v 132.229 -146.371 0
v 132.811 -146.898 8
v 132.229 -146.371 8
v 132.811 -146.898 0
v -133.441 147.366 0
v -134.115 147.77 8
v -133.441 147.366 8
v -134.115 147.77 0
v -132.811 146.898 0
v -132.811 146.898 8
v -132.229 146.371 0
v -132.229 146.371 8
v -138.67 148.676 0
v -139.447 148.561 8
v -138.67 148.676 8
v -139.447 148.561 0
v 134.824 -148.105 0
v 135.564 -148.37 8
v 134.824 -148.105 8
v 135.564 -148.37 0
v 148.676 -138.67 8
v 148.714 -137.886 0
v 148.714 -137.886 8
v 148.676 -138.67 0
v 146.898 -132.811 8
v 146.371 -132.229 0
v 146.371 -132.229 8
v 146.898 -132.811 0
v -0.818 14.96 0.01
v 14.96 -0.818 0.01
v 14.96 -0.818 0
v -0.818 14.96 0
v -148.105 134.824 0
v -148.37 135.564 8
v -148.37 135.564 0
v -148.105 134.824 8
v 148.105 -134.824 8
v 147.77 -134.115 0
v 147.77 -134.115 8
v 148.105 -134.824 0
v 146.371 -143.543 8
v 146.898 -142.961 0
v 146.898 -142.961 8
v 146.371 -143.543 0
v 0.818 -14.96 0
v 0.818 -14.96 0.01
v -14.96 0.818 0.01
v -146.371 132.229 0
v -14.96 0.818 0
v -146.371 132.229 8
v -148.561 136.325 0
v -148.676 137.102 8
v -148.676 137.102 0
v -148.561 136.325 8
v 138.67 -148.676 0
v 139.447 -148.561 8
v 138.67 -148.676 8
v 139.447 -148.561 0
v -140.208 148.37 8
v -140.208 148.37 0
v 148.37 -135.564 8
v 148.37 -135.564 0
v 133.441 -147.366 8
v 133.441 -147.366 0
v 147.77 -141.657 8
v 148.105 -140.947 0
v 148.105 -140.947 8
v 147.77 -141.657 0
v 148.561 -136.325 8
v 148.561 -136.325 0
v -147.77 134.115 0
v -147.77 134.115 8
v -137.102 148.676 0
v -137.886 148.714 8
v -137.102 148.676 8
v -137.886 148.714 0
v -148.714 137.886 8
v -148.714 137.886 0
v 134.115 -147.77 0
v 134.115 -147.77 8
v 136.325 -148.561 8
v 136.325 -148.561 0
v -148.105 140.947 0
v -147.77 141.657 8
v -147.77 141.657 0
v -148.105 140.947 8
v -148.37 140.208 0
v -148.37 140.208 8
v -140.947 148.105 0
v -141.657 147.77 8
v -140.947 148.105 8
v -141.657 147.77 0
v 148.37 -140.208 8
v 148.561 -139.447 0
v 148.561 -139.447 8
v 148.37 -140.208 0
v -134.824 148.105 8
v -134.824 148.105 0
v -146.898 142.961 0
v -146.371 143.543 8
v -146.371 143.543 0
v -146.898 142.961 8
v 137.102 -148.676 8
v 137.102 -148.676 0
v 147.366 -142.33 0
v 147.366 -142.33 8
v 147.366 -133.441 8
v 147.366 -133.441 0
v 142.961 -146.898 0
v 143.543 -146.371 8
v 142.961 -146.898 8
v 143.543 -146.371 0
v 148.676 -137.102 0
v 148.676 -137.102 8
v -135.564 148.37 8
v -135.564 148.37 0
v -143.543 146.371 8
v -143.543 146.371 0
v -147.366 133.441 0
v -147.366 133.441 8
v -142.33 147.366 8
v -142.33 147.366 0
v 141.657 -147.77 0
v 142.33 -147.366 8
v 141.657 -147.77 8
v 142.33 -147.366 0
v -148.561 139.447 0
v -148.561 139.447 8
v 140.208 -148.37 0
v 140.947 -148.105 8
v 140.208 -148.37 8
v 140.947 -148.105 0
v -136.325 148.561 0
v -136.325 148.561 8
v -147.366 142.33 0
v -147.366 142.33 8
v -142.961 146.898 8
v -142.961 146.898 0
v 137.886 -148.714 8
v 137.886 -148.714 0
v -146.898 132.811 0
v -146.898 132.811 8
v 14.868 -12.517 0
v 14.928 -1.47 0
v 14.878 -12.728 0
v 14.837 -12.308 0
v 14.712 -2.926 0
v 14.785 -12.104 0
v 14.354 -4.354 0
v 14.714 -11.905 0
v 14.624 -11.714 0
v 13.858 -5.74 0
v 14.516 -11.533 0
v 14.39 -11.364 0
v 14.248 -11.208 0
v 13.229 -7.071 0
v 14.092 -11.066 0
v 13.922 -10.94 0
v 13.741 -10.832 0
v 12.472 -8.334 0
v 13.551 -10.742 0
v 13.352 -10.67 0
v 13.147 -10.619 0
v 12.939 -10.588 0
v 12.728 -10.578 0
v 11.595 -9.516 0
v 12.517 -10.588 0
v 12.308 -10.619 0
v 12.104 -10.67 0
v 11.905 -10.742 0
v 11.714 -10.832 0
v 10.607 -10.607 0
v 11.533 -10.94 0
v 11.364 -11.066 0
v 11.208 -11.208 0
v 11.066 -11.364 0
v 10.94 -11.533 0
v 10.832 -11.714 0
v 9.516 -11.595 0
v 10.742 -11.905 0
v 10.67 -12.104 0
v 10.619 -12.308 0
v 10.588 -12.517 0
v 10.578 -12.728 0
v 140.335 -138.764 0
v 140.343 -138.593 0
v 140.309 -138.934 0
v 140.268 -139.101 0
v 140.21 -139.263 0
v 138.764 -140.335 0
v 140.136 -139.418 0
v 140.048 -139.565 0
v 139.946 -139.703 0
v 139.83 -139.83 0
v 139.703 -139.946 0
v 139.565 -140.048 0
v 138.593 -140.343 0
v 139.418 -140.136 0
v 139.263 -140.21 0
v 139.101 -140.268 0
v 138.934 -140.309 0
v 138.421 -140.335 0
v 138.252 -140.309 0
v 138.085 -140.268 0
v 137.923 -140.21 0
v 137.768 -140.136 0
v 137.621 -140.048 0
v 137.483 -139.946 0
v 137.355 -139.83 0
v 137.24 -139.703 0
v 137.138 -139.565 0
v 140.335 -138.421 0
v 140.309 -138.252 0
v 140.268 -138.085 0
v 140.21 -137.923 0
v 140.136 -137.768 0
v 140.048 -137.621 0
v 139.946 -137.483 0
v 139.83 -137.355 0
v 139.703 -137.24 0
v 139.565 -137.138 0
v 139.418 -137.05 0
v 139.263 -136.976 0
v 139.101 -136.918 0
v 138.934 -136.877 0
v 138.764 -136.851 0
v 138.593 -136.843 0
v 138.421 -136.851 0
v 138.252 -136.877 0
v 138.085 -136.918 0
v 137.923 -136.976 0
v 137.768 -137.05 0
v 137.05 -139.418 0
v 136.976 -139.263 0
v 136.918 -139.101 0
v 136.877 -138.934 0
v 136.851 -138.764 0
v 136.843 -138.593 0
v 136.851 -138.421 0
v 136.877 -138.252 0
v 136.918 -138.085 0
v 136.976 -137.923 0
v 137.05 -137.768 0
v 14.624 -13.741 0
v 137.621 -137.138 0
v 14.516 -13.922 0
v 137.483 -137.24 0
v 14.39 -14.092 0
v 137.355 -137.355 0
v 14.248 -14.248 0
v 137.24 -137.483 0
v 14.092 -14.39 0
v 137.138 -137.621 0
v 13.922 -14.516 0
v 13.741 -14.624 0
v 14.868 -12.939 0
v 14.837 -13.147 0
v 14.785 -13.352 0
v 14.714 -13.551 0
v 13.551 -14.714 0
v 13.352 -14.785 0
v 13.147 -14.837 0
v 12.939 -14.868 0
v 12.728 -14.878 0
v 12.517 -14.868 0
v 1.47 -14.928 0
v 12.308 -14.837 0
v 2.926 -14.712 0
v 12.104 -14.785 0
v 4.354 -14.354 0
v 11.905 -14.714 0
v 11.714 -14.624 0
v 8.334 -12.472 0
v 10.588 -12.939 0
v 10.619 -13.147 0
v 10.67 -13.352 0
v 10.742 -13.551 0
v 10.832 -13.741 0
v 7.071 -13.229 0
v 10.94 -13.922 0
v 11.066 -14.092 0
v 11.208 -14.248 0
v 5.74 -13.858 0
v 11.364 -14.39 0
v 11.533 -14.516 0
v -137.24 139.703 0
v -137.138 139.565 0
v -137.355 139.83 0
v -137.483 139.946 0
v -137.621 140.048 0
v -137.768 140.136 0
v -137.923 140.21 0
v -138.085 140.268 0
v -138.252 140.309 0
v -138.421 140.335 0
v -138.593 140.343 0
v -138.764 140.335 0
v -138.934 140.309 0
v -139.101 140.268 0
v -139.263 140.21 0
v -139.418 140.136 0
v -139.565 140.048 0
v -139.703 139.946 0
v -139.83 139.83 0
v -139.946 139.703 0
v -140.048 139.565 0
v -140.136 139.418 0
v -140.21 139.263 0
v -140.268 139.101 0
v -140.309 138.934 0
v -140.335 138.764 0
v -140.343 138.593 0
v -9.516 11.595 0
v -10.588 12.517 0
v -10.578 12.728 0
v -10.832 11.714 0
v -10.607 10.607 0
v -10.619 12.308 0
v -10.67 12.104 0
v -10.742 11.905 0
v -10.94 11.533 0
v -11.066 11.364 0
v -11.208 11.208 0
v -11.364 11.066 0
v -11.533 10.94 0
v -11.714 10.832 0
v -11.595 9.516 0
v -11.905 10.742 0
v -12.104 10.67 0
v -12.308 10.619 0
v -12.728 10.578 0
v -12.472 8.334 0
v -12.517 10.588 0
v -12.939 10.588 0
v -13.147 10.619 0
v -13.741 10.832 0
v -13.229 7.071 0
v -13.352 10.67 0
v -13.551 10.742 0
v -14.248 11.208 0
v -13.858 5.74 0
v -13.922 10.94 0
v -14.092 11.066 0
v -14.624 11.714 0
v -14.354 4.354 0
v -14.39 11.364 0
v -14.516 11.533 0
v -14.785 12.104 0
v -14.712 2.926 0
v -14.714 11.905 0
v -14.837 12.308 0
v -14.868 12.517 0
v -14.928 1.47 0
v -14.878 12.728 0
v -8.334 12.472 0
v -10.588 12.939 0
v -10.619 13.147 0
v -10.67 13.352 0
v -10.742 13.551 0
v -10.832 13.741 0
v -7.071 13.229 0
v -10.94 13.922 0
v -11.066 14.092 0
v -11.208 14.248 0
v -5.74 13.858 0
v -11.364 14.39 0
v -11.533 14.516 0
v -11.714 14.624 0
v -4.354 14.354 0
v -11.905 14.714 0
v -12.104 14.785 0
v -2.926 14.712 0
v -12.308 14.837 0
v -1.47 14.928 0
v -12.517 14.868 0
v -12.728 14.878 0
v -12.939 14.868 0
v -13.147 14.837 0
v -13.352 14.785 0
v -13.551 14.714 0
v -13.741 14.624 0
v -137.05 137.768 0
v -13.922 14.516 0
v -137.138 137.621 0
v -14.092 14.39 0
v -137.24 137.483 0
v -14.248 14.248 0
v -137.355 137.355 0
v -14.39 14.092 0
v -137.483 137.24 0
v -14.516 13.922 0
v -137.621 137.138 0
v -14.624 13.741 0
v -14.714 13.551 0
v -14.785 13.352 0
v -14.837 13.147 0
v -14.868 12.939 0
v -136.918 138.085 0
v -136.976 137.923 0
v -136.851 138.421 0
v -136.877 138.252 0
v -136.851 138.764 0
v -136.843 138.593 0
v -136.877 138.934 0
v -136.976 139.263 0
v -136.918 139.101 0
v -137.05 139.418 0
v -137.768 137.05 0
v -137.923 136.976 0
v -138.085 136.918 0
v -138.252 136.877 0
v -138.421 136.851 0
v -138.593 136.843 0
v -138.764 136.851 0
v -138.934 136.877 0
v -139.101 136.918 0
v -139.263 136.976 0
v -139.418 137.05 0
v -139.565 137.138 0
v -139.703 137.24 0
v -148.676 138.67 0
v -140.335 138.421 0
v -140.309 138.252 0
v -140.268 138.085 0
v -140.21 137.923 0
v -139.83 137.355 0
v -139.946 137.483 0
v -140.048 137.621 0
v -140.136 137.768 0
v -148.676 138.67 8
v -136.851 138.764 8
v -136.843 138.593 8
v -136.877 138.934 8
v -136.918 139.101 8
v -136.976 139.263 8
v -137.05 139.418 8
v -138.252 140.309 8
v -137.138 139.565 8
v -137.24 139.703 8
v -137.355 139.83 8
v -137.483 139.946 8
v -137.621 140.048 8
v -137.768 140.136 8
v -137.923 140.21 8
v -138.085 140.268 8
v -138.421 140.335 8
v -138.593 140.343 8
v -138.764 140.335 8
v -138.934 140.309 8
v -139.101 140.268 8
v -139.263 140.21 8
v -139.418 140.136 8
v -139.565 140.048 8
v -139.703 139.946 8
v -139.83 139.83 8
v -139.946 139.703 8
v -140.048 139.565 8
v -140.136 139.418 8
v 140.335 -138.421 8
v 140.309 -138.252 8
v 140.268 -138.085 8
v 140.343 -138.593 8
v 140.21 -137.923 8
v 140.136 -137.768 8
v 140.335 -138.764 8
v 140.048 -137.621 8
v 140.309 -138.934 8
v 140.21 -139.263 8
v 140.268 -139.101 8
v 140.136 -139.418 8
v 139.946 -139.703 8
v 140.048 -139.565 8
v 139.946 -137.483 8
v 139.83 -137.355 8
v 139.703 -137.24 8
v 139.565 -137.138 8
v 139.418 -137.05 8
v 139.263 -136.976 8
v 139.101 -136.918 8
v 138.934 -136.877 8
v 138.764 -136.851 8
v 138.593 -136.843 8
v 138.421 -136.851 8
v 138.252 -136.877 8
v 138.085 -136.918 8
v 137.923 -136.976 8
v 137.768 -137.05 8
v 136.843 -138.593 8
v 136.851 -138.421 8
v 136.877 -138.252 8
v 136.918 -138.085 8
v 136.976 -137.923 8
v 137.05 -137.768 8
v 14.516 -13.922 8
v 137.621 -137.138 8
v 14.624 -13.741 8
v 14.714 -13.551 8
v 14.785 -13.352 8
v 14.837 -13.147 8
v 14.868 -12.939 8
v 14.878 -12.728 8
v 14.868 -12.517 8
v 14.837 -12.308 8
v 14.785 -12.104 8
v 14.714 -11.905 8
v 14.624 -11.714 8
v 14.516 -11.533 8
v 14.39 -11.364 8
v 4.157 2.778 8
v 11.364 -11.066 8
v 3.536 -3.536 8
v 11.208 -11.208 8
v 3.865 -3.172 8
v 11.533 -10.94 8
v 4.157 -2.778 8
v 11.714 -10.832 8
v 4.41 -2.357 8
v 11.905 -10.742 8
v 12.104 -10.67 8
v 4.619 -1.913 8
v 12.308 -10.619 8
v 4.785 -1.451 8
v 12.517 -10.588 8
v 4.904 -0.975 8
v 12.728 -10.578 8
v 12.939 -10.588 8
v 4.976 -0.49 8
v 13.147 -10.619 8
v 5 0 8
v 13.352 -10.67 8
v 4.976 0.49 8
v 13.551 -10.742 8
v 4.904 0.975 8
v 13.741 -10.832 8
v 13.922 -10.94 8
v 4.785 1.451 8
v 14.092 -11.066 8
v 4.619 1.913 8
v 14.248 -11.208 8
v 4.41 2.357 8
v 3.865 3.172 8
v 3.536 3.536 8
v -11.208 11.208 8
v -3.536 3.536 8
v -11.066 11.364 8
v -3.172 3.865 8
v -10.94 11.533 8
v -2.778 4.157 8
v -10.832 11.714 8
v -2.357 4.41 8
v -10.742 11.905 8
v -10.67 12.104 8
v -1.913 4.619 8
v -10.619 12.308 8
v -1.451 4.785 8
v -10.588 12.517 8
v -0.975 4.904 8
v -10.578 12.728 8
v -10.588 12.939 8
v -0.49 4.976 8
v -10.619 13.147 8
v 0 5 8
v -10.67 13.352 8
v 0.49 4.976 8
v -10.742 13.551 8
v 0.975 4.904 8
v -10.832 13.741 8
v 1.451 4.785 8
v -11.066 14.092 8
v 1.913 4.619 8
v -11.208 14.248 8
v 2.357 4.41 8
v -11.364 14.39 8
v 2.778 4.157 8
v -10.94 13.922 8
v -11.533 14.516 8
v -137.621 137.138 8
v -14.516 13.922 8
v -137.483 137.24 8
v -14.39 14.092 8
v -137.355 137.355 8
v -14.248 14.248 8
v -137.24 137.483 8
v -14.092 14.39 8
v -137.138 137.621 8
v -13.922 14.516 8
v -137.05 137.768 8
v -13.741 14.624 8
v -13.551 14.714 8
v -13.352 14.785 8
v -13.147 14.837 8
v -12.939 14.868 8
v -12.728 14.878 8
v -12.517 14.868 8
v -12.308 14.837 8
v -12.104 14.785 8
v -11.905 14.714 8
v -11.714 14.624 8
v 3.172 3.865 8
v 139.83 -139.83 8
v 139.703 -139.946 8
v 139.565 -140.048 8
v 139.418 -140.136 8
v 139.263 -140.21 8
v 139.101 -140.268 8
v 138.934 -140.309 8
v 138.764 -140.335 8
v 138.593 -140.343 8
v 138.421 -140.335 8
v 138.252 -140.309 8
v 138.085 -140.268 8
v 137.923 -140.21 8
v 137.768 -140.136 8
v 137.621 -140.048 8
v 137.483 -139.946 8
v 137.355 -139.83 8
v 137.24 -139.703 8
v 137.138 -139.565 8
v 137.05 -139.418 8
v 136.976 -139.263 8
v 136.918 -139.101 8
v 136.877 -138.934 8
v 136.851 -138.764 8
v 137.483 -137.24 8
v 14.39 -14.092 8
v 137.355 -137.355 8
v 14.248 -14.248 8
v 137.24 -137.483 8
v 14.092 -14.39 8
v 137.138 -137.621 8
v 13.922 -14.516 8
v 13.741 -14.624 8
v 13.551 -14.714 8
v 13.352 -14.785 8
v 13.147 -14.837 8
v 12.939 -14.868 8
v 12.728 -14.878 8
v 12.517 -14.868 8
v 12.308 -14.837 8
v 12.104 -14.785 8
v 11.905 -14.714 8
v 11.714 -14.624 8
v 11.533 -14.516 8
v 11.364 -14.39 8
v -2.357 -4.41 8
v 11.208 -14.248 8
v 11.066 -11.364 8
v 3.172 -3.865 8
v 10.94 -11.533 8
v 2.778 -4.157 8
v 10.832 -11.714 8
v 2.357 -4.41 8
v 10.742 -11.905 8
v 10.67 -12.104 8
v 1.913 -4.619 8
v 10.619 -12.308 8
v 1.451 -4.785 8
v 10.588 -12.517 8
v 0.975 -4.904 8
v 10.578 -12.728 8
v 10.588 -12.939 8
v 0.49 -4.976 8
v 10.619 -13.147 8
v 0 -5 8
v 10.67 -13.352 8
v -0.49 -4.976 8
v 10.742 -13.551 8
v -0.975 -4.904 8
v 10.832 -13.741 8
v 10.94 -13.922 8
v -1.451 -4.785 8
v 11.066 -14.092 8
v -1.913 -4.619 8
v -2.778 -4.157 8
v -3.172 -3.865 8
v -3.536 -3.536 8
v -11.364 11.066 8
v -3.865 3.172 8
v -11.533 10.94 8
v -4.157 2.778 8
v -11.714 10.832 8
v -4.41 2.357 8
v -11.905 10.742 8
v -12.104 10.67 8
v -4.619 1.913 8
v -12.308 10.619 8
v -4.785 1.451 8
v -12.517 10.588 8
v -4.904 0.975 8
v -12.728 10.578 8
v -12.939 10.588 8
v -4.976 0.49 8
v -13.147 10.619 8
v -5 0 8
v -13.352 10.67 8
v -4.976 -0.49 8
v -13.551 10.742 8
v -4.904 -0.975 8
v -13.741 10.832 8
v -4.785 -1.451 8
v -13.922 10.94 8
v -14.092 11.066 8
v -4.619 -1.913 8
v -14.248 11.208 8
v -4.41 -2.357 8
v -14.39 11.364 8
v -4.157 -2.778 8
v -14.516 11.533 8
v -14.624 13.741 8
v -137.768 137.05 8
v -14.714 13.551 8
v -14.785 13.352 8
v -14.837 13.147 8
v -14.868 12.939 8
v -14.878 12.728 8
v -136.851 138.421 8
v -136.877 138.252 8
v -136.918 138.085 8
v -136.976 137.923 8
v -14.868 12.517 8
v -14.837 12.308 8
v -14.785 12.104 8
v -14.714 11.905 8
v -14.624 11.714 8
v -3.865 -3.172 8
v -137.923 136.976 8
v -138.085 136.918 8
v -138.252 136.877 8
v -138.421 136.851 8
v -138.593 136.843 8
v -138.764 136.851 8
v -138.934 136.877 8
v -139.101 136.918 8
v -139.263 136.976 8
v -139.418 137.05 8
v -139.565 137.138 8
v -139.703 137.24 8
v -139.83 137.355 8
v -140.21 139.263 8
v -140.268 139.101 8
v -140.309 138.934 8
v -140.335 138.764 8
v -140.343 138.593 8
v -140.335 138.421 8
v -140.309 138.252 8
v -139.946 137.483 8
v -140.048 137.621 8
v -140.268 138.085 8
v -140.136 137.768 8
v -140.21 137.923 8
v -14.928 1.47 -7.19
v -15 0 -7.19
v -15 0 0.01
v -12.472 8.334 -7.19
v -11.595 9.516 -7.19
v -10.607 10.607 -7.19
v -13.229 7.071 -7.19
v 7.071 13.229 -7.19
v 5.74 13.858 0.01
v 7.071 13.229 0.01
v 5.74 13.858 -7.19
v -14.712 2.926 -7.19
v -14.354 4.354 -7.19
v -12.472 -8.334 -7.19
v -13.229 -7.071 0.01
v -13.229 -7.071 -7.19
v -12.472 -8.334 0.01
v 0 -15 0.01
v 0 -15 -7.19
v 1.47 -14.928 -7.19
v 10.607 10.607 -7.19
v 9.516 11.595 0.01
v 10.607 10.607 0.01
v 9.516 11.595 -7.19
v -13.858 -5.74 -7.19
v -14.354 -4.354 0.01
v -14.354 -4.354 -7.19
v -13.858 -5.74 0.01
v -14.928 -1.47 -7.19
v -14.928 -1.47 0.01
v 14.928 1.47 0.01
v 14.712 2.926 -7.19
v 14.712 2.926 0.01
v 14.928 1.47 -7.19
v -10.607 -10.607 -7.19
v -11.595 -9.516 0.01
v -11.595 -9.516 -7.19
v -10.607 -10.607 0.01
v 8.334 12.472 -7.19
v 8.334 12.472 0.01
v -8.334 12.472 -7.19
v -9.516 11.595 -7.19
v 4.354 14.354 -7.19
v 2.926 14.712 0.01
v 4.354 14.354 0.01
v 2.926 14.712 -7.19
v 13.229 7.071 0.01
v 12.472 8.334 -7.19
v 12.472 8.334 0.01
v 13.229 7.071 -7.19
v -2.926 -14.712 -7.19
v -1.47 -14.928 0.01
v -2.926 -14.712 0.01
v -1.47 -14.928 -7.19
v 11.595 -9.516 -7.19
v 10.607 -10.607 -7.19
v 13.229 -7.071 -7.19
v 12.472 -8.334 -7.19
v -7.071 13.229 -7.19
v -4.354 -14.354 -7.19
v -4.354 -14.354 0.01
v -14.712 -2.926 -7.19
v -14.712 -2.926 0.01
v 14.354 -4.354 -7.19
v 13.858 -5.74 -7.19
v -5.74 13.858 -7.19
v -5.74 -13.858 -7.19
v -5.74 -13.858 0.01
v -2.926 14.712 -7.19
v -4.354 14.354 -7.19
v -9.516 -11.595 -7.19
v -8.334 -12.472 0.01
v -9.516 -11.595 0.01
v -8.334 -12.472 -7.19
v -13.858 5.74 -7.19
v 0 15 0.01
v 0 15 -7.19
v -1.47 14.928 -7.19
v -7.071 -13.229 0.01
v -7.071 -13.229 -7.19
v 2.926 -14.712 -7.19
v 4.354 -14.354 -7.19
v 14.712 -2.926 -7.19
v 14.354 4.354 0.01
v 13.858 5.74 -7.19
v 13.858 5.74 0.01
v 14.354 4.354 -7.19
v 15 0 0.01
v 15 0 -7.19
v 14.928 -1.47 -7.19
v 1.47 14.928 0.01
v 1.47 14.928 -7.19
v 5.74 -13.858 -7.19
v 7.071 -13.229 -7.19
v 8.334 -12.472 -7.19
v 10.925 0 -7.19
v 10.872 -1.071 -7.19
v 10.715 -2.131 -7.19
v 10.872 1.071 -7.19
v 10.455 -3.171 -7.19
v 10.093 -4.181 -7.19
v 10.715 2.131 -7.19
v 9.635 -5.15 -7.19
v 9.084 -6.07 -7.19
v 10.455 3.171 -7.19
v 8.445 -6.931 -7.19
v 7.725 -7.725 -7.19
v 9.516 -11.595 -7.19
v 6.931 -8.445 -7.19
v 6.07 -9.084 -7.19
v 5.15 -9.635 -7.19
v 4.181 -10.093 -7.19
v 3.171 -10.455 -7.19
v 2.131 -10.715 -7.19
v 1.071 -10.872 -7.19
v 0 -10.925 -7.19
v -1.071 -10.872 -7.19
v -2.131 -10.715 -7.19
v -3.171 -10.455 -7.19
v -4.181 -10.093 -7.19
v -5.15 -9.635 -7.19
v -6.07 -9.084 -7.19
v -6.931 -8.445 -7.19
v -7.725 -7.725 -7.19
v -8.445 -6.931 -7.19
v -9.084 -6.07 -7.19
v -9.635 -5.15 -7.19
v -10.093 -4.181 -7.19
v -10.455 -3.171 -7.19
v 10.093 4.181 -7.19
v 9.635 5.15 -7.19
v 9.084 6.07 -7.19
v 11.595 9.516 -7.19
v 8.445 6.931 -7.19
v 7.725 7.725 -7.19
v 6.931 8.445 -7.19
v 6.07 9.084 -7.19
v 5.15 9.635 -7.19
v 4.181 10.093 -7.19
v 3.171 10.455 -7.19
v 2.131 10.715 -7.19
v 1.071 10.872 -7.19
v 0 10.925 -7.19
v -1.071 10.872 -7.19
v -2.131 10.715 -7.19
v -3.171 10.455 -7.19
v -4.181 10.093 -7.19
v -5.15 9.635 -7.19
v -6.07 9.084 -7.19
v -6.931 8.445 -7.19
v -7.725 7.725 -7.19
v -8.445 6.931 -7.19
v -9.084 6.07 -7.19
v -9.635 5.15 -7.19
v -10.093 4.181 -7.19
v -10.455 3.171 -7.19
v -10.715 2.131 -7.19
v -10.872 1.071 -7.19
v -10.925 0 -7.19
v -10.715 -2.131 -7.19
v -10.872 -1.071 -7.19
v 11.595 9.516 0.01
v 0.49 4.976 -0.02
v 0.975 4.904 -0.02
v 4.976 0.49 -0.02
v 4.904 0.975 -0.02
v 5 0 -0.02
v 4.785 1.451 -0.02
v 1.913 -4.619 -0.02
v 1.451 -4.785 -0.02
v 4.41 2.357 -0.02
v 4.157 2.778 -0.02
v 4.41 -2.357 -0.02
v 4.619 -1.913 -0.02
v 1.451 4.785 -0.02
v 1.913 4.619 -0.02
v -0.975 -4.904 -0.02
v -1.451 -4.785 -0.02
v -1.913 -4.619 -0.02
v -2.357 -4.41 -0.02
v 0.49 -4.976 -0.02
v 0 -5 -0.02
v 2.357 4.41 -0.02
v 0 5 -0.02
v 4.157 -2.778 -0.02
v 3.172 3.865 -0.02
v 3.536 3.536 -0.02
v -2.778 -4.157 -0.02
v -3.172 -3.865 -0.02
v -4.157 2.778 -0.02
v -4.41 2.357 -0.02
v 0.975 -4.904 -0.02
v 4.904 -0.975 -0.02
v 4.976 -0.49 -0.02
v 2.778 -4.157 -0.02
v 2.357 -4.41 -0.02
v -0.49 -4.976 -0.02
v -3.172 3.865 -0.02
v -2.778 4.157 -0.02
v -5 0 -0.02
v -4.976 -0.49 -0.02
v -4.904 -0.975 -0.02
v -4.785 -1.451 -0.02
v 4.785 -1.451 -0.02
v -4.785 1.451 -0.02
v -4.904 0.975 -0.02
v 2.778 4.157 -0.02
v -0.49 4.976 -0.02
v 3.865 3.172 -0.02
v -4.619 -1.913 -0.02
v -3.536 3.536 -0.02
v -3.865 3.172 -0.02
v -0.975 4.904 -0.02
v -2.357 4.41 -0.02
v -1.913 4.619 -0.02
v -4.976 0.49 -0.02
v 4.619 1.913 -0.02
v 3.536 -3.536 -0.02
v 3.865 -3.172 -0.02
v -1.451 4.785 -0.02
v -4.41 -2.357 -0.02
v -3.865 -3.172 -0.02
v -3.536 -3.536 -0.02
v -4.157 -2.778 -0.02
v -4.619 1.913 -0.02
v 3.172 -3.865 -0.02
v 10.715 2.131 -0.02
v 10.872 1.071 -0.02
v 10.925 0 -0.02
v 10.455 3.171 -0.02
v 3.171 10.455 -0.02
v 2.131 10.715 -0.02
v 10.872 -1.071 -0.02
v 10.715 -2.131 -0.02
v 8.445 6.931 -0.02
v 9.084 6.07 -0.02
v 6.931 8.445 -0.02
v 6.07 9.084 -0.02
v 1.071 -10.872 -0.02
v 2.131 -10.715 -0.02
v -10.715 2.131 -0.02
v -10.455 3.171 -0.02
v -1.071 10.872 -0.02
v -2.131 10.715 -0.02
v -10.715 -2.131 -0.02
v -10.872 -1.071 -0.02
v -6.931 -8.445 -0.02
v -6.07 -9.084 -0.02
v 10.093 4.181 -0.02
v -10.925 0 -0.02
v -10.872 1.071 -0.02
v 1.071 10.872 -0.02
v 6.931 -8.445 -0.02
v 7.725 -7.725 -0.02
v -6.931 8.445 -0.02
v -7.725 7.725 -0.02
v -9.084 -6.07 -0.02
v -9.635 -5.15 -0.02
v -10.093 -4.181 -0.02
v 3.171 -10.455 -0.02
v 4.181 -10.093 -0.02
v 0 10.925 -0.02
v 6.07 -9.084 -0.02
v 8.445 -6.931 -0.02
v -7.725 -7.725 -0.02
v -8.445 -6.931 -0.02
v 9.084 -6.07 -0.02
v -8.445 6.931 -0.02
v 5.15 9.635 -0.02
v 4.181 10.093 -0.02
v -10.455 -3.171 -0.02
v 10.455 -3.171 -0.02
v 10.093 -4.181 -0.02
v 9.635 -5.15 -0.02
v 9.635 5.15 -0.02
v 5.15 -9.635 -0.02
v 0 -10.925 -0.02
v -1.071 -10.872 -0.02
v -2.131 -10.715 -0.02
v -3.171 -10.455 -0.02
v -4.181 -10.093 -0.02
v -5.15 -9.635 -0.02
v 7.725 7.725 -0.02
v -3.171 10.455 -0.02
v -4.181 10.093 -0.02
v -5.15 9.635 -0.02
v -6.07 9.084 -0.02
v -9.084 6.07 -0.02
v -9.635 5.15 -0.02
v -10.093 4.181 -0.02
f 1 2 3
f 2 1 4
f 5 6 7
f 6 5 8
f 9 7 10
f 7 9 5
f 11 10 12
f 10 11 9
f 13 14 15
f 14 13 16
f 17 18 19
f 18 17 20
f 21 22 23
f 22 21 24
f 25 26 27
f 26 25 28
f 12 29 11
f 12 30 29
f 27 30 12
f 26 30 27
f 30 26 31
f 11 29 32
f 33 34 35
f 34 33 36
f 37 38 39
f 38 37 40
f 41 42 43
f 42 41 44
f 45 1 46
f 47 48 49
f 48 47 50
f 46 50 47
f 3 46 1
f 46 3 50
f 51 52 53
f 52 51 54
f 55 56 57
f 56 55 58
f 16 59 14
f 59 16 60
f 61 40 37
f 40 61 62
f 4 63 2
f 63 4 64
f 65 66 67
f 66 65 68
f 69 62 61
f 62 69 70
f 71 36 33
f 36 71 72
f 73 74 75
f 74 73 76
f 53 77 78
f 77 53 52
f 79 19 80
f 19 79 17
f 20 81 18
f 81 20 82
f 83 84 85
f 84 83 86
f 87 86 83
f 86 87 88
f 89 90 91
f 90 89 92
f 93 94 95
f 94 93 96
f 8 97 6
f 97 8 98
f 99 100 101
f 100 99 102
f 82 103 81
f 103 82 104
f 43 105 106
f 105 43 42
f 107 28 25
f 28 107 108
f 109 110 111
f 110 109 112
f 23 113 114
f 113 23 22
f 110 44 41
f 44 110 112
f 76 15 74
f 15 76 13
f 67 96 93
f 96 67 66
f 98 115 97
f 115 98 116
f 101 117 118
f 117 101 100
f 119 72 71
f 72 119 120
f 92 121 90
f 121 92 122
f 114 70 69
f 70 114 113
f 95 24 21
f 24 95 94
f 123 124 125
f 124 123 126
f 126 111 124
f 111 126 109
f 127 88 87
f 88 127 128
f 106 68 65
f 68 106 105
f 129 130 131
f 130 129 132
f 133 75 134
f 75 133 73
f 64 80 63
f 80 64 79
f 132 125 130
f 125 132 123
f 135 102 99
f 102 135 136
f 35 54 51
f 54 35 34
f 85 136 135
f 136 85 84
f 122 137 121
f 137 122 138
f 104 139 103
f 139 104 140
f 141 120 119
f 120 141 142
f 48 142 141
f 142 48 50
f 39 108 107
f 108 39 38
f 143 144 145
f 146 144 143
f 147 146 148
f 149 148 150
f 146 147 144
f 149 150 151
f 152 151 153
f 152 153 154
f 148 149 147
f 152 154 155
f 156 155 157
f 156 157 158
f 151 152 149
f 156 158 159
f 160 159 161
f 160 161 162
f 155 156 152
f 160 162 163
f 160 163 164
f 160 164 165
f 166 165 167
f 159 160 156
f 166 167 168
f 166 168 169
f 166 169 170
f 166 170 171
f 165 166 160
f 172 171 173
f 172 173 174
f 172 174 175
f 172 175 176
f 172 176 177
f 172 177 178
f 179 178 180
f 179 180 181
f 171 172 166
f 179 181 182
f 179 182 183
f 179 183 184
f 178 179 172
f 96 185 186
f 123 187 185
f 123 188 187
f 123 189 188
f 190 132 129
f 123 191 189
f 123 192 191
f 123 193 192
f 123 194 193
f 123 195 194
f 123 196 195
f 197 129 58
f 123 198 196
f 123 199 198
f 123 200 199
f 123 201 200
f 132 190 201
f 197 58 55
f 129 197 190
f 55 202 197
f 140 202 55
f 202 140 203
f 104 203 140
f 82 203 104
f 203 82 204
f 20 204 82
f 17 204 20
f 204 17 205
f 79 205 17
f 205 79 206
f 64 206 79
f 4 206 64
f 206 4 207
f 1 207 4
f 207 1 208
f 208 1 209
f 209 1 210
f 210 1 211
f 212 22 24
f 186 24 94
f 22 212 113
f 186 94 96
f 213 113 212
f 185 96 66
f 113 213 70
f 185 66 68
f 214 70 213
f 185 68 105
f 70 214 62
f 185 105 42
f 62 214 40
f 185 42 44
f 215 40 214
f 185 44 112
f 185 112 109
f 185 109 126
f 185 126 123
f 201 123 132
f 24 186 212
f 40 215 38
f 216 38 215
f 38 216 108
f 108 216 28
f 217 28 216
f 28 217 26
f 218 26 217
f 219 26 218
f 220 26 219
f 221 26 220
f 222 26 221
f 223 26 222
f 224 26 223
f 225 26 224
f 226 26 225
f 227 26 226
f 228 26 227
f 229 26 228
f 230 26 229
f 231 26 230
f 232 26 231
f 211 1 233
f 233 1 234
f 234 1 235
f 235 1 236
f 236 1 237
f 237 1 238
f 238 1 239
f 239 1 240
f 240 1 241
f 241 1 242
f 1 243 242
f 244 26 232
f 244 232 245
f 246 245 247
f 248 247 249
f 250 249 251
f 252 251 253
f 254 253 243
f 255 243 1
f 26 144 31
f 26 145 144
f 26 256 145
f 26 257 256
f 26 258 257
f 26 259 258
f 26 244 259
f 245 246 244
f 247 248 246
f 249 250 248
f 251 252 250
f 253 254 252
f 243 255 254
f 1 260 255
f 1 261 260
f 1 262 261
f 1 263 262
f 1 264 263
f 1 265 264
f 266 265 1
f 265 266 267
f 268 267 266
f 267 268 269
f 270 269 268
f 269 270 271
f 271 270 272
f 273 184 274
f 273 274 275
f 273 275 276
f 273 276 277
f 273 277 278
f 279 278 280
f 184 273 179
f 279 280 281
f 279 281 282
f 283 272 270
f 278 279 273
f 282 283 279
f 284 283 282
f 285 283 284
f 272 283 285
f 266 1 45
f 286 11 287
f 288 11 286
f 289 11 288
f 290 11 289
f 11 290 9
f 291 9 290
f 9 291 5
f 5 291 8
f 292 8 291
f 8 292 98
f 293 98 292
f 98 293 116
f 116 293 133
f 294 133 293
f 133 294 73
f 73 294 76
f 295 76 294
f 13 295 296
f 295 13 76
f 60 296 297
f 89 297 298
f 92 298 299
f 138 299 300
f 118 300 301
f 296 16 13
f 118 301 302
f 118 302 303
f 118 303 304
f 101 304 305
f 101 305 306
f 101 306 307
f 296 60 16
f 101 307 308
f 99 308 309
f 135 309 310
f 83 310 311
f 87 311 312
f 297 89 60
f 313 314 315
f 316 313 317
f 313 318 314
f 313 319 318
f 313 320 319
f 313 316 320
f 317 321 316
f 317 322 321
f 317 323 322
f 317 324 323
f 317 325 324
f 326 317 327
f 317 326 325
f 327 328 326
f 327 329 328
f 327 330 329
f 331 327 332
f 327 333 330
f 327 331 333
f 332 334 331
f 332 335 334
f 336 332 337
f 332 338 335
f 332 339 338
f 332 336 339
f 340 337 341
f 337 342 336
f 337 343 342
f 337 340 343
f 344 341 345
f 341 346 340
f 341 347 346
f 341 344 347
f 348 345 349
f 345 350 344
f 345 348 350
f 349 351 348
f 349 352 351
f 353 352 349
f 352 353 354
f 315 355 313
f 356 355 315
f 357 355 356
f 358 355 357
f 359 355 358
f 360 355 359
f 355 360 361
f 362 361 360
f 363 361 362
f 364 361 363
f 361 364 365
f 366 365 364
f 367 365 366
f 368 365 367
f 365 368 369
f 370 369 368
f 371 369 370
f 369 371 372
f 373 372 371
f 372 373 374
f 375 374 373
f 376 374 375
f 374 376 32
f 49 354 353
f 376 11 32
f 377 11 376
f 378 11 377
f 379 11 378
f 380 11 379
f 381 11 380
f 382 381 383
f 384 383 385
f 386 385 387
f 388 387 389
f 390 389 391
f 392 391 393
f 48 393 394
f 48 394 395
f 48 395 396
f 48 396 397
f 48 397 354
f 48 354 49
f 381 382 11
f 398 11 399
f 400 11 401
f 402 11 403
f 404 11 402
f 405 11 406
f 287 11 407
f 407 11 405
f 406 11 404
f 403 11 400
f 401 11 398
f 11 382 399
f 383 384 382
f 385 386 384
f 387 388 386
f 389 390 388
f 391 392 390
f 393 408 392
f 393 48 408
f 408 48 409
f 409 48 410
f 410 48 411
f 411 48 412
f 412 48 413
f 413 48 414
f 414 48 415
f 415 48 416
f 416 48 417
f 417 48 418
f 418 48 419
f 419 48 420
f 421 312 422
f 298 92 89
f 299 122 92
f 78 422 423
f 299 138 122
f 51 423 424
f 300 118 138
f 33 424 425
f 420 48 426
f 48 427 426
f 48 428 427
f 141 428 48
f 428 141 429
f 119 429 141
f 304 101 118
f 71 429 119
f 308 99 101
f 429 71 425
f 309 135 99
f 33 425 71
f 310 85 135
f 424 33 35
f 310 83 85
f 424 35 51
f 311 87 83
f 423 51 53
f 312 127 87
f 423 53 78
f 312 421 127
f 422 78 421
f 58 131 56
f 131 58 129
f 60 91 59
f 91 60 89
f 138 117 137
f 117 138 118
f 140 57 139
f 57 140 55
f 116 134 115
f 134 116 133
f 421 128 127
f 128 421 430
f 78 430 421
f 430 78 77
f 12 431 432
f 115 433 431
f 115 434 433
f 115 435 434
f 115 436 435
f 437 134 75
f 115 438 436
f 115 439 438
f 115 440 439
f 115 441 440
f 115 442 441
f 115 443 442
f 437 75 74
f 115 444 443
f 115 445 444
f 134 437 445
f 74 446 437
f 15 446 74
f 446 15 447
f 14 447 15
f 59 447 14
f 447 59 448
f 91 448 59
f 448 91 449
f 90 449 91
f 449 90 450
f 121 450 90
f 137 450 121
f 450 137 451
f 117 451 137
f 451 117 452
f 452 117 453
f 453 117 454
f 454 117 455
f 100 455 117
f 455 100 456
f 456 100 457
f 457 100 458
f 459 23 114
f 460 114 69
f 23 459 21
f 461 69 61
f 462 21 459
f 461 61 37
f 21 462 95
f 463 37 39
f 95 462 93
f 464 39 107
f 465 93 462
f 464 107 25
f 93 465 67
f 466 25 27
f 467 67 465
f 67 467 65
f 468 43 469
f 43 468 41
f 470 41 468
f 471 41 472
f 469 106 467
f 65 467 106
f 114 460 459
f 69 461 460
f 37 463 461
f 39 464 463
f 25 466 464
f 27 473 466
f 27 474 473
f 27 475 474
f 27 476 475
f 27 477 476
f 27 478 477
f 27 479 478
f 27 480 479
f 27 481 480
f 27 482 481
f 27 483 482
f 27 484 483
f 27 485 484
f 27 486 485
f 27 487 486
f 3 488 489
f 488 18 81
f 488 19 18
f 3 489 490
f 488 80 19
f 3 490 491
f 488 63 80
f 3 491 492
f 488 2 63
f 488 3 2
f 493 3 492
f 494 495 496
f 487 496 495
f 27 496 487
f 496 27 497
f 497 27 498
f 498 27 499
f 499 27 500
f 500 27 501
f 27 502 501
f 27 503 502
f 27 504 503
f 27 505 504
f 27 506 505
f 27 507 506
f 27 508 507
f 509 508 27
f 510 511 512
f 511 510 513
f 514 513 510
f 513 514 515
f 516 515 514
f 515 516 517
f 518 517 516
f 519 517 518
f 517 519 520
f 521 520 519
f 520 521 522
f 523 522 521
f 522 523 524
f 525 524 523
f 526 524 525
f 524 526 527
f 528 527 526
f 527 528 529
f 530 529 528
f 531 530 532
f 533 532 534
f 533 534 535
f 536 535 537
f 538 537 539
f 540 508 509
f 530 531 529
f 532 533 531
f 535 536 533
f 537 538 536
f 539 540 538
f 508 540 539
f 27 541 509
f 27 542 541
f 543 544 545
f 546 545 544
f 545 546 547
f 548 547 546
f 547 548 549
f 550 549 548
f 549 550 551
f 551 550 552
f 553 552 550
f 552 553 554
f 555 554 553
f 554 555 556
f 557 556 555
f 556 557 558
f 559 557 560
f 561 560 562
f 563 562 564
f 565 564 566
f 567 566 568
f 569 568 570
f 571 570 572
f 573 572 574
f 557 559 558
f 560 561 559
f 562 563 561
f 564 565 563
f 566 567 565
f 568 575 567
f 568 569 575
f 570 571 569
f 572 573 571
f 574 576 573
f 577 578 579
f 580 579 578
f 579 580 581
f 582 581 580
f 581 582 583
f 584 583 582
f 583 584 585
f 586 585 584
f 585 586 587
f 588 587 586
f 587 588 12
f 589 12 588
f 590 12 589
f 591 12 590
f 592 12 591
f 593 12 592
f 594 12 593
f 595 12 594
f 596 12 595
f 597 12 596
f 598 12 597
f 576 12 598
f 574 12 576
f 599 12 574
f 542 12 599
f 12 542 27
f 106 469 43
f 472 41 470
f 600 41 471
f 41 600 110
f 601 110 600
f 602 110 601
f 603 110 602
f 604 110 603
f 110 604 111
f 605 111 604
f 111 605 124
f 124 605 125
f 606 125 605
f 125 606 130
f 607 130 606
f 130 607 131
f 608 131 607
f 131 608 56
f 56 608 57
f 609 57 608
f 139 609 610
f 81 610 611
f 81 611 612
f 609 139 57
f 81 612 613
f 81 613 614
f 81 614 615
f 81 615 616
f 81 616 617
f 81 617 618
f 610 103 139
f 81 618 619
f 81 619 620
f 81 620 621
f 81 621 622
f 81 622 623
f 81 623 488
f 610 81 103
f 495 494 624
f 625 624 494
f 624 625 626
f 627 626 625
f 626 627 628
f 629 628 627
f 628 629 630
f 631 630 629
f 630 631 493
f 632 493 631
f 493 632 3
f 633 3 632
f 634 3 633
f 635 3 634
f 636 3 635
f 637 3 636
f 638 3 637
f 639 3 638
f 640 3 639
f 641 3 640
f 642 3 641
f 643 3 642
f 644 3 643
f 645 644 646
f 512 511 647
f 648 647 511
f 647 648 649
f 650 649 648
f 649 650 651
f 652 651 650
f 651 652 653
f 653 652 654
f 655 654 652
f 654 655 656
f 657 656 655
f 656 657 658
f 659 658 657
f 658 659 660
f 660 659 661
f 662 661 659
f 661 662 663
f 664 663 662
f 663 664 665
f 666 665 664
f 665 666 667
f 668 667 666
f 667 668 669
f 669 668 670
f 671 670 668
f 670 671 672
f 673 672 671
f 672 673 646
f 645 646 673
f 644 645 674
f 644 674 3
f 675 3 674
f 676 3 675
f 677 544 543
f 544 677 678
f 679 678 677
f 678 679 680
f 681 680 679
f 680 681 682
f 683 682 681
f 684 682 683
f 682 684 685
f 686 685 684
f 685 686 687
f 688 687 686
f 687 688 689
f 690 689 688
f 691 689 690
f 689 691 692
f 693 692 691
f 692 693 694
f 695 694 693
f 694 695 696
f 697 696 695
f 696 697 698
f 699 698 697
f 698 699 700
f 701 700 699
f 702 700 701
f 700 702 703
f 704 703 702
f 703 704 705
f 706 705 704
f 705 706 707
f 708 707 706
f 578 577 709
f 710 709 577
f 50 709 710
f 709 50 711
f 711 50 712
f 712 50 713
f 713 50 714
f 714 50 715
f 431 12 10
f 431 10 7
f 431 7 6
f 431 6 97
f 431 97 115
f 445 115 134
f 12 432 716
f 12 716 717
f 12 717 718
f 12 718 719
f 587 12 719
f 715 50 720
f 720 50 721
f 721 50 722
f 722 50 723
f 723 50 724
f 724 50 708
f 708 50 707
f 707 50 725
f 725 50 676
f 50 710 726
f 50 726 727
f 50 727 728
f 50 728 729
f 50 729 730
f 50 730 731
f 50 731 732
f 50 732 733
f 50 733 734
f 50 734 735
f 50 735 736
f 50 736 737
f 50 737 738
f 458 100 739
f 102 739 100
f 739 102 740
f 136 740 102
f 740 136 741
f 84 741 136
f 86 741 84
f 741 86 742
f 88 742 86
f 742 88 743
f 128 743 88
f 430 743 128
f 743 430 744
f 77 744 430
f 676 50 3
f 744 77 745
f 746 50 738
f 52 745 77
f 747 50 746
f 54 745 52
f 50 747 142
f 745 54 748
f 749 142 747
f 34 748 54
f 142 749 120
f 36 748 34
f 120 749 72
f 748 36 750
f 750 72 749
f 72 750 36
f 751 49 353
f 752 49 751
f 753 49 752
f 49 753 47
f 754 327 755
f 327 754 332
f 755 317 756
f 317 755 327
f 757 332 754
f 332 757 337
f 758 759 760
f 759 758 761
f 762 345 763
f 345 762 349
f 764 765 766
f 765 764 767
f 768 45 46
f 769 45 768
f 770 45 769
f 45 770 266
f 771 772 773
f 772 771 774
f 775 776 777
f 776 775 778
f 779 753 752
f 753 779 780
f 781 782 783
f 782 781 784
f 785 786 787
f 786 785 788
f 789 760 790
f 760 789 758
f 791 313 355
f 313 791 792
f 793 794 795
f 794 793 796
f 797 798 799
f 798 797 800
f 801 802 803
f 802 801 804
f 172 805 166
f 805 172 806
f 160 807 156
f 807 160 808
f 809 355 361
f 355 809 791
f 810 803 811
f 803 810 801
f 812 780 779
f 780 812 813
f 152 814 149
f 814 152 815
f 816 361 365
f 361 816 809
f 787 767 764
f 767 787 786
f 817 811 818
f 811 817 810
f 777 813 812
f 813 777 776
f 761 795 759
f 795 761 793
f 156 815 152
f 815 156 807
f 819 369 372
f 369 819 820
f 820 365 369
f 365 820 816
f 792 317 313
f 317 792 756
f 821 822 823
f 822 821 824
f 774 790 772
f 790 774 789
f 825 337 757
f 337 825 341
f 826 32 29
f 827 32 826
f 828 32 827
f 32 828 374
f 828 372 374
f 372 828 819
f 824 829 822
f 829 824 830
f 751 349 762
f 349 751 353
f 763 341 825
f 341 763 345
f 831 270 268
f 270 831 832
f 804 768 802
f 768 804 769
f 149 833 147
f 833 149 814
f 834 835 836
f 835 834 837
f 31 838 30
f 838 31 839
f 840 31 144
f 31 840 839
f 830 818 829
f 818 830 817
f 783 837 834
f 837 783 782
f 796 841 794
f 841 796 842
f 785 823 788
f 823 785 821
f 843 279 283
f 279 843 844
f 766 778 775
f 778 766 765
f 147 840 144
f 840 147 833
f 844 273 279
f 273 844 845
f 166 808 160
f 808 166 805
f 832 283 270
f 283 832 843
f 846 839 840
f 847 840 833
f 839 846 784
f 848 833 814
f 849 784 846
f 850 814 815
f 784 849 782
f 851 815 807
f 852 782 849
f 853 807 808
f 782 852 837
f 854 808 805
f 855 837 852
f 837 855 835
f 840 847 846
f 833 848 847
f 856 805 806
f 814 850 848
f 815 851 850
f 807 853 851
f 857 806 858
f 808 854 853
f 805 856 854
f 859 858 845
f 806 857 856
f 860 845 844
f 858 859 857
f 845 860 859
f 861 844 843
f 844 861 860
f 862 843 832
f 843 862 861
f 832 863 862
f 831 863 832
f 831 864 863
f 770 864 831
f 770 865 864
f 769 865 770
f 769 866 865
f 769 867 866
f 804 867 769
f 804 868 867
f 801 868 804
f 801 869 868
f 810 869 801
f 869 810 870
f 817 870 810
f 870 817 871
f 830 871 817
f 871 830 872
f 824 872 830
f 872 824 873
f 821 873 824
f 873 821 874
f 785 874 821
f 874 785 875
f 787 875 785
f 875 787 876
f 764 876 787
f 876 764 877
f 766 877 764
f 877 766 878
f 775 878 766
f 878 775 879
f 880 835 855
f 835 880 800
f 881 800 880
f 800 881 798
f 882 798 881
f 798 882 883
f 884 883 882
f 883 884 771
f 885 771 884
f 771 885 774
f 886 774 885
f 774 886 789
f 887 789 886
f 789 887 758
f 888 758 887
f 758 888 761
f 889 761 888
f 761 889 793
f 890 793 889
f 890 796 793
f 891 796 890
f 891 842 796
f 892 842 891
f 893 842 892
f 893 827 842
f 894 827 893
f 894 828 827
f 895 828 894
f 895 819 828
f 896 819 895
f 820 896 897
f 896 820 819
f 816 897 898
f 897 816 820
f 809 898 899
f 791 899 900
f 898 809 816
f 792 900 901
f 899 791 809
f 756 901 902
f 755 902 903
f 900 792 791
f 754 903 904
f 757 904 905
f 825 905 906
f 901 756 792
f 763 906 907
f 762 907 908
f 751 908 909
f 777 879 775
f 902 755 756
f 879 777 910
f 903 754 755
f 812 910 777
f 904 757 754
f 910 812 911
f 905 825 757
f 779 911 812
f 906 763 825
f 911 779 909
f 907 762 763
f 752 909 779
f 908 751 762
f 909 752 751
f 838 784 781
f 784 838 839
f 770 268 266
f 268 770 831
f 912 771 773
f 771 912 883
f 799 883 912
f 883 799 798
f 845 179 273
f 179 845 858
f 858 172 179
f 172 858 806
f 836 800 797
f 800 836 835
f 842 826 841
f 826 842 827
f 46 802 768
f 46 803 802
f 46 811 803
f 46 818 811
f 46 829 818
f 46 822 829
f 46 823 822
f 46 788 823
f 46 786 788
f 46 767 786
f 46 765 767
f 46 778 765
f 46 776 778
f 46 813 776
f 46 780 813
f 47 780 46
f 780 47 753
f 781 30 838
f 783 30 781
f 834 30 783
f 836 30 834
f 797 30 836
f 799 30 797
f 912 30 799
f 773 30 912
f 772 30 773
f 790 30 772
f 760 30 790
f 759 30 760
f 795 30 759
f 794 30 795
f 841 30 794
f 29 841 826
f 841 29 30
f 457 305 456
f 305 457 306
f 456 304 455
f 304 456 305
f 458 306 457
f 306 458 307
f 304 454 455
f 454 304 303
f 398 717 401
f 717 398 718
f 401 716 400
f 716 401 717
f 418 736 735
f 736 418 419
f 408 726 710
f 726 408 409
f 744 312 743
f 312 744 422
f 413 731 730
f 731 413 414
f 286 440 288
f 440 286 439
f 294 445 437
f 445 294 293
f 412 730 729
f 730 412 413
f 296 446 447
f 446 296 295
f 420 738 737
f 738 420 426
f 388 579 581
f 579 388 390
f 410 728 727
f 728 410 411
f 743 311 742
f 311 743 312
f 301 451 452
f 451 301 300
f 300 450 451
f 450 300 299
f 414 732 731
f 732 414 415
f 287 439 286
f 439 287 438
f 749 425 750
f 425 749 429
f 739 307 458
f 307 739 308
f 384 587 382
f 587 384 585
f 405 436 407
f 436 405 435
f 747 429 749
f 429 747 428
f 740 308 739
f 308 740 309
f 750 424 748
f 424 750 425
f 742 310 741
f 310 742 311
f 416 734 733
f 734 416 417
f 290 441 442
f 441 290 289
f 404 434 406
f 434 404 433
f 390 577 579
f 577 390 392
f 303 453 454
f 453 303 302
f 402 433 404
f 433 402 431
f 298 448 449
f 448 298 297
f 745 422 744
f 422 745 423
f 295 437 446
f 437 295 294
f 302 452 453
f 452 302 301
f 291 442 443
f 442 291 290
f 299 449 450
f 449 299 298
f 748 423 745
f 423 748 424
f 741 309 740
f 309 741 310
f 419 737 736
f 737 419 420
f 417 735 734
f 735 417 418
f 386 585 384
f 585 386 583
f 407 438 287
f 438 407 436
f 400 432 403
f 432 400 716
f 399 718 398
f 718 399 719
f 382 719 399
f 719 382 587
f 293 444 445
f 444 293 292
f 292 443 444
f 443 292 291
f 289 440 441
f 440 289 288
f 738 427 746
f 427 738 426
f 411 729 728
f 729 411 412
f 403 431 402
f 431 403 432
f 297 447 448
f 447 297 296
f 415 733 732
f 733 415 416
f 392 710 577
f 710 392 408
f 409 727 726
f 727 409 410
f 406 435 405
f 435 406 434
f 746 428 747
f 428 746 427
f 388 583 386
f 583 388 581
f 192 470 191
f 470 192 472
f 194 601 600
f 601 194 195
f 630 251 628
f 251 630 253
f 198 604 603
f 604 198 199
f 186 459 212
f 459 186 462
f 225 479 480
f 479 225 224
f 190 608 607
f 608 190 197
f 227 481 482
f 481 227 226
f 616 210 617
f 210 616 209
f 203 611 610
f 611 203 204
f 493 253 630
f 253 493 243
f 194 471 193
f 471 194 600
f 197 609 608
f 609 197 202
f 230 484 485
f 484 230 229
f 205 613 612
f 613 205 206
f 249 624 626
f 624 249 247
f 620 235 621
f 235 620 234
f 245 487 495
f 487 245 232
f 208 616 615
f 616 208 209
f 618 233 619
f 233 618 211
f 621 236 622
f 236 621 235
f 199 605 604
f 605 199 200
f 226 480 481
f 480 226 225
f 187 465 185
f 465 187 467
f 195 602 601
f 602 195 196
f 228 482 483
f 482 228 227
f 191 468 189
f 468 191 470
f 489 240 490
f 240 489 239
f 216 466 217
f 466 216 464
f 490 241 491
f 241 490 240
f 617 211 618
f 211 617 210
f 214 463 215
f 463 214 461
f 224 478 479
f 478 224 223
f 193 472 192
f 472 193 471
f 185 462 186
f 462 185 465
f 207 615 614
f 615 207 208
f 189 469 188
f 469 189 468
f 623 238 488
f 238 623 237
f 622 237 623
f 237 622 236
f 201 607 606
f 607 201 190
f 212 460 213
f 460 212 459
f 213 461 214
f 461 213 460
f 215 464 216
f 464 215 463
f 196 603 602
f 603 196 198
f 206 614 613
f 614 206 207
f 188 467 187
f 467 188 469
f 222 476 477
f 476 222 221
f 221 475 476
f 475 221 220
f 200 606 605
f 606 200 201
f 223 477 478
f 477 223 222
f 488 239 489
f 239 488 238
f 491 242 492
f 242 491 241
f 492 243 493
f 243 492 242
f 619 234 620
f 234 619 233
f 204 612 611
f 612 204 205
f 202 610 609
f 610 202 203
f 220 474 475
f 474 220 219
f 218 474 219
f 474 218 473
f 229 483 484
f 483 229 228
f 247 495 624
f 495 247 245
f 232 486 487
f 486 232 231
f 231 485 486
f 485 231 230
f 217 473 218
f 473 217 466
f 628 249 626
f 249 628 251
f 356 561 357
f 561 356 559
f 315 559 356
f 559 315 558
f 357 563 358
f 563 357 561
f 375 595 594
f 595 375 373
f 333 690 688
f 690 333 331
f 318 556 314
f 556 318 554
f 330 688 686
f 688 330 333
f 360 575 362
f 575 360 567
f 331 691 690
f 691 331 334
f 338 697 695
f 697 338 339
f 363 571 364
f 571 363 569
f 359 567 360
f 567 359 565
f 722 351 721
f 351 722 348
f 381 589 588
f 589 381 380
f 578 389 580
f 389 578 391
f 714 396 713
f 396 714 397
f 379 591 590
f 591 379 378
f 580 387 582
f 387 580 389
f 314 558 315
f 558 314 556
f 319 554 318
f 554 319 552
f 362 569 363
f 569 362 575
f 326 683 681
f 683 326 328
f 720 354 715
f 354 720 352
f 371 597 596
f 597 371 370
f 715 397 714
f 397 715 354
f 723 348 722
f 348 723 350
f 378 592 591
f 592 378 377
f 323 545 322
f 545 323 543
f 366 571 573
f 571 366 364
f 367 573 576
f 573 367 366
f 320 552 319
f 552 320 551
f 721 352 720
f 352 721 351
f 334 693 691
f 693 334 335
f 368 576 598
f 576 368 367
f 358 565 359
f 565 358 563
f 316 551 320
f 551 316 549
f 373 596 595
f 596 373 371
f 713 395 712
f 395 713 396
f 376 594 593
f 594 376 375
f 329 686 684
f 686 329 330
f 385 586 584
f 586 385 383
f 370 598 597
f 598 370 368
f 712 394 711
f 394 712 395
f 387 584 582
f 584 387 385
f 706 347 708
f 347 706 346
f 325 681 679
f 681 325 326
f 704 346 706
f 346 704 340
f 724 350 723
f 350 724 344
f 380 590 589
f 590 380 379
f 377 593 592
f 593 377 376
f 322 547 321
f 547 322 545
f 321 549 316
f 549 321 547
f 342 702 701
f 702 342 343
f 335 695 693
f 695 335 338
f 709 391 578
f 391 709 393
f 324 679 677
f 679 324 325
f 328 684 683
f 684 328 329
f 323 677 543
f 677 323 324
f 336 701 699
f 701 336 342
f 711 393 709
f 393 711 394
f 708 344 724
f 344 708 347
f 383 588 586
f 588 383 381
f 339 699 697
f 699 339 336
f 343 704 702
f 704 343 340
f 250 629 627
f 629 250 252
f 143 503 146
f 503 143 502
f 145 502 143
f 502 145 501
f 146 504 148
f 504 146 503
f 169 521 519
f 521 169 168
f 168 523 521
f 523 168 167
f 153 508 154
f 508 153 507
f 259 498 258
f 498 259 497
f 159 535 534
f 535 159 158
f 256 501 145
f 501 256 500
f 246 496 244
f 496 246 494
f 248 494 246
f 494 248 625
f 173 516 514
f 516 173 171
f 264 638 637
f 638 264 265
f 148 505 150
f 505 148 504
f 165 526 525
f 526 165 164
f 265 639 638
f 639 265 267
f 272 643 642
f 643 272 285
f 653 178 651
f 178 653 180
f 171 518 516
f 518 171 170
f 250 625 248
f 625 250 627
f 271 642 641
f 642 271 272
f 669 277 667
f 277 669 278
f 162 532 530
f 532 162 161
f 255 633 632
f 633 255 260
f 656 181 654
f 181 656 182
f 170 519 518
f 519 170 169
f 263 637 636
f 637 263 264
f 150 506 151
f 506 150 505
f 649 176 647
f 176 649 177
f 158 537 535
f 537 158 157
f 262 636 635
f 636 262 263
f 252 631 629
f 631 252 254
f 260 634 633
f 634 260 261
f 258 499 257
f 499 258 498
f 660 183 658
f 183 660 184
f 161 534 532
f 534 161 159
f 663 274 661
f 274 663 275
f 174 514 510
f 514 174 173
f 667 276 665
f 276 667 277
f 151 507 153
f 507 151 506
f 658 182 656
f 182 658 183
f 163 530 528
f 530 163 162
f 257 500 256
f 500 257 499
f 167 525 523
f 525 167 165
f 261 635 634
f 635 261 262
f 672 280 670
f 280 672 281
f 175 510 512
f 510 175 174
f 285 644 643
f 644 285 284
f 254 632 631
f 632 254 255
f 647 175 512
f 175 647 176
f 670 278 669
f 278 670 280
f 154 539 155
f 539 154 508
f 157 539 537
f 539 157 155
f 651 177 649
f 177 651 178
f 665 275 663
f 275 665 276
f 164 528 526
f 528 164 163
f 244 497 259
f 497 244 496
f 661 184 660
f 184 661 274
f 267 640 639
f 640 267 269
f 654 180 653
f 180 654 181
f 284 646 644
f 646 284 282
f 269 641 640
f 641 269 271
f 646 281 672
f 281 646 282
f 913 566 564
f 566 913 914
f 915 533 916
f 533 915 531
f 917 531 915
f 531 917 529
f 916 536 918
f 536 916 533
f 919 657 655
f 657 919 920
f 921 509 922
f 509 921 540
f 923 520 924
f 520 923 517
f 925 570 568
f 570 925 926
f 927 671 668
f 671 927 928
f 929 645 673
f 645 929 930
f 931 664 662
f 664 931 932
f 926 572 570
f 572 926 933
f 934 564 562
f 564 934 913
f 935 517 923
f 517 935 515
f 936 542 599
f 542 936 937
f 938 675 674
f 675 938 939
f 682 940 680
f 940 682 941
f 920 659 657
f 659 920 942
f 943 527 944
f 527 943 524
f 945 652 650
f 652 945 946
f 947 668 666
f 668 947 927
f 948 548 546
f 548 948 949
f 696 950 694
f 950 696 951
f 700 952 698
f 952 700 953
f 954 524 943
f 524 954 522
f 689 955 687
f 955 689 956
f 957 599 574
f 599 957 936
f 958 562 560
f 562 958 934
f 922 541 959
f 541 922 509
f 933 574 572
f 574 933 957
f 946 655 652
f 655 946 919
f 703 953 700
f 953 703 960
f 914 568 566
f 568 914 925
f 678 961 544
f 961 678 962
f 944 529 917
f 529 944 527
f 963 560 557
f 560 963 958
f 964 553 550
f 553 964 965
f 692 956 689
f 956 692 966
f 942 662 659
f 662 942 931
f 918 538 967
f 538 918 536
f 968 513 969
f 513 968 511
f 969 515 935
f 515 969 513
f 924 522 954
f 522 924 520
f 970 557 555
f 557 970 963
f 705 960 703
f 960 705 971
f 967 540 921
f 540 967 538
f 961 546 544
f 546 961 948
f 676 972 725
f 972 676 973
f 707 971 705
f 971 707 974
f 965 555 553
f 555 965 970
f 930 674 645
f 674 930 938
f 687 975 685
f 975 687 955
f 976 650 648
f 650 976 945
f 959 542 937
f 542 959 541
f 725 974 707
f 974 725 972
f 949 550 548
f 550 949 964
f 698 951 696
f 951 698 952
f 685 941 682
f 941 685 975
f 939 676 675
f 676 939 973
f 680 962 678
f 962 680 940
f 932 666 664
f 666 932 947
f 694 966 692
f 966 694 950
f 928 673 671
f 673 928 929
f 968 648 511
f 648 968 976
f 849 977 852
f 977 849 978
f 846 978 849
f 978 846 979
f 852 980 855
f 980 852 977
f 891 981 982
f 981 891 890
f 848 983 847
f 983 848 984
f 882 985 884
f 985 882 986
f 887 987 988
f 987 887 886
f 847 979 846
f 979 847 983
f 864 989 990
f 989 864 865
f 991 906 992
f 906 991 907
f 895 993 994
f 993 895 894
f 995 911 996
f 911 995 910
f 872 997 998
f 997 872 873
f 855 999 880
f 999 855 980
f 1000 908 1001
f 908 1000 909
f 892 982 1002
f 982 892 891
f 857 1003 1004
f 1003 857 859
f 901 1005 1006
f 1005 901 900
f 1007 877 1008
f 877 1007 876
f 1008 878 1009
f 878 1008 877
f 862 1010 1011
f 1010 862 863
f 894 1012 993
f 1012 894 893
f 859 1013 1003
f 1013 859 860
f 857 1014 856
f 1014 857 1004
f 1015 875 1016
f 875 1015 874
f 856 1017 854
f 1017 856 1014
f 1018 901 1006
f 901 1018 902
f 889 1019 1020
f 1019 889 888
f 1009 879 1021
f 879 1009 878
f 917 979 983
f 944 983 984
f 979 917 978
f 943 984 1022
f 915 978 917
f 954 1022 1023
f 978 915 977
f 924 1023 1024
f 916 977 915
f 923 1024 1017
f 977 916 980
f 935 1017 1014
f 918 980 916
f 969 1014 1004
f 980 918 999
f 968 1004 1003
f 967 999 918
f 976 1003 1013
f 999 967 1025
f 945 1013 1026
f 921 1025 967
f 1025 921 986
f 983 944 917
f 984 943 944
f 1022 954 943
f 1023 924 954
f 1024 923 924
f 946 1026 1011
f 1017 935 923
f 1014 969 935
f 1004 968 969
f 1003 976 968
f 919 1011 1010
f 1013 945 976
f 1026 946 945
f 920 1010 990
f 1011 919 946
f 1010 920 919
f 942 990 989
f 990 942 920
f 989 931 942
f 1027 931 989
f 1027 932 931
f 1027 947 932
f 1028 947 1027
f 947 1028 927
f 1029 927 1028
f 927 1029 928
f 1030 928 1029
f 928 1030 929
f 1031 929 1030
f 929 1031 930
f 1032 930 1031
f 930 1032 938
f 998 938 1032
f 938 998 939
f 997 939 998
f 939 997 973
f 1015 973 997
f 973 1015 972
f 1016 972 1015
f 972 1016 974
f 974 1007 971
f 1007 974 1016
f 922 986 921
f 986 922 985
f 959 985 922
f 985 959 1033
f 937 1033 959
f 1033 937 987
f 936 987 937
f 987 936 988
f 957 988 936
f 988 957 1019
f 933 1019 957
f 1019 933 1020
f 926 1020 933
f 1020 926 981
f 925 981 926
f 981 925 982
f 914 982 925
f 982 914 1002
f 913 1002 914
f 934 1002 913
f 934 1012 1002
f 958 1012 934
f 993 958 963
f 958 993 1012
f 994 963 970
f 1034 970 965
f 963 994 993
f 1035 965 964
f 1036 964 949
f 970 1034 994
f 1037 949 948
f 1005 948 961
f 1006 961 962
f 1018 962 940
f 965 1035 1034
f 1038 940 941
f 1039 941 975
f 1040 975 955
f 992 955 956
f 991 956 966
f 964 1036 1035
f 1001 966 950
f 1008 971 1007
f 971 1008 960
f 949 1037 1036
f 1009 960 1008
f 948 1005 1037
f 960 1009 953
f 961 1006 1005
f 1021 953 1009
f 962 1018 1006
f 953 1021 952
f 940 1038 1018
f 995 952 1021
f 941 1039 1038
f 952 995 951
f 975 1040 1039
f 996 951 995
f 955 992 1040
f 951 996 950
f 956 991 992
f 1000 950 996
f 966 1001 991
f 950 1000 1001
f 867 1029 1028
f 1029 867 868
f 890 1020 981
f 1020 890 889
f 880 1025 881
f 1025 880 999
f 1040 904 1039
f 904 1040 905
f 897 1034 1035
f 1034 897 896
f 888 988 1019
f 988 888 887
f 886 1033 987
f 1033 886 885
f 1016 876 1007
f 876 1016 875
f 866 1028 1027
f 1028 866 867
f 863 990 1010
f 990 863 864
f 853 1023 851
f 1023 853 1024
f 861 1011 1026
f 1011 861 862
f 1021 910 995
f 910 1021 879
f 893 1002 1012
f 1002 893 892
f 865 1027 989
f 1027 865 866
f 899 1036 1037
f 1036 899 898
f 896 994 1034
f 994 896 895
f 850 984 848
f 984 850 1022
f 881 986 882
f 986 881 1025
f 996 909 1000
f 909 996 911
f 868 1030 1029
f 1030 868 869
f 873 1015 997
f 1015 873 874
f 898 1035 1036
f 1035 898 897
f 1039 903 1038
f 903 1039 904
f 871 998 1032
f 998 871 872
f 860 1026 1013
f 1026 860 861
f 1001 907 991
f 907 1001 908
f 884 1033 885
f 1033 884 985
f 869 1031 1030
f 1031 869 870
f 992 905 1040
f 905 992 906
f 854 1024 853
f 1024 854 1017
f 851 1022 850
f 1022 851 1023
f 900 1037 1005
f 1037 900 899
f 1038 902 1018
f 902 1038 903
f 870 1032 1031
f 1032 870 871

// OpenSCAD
// Gen-DT — rear BEARING BRIDGE (bar endbell, 2026-10-10): a 608 boss on a 20 mm wide bar that spans the
// two frame rods at 135 deg and 135+180 deg (R = flange_bolt_r). The front bridge uses the rods at 45/225 deg, the rear
// bridge the rods at 135/315 deg, so the two bridges cross at 90 deg and the stator is held at 4 points.
// A bar instead of a full disc is what lets this big-ring kit fit ONE 410 mm plate. Print flat face DOWN (boss up, no supports).
// Brace holes (temporary M4 jack rods, R = brace_r) sit on the bar axis.
include <parameters.scad>;
$fn = 64;
bar_w = 20;
bar_len = 2 * (flange_bolt_r + 9);
module bar_2d() { offset(r=8) offset(delta=-8) square([bar_len, bar_w], center=true); }
difference() {
    rotate([0, 0, 135]) union() {
        linear_extrude(endbell_thick) bar_2d();
        translate([0, 0, -bearing_h + 0.01]) cylinder(d=30, h=bearing_h);
    }
    translate([0, 0, -bearing_h - 0.1]) cylinder(d=endbell_shaft_clear, h=50);
    translate([0, 0, -bearing_h - 0.02]) cylinder(d=bearing_d, h=bearing_h);
    for (s = [0, 180]) rotate([0, 0, 135 + s]) translate([flange_bolt_r, 0, -20]) cylinder(d=m3_clear, h=60);
    for (a = brace_angles) translate([brace_r*cos(a), brace_r*sin(a), -20]) cylinder(d=brace_d, h=50);
}
